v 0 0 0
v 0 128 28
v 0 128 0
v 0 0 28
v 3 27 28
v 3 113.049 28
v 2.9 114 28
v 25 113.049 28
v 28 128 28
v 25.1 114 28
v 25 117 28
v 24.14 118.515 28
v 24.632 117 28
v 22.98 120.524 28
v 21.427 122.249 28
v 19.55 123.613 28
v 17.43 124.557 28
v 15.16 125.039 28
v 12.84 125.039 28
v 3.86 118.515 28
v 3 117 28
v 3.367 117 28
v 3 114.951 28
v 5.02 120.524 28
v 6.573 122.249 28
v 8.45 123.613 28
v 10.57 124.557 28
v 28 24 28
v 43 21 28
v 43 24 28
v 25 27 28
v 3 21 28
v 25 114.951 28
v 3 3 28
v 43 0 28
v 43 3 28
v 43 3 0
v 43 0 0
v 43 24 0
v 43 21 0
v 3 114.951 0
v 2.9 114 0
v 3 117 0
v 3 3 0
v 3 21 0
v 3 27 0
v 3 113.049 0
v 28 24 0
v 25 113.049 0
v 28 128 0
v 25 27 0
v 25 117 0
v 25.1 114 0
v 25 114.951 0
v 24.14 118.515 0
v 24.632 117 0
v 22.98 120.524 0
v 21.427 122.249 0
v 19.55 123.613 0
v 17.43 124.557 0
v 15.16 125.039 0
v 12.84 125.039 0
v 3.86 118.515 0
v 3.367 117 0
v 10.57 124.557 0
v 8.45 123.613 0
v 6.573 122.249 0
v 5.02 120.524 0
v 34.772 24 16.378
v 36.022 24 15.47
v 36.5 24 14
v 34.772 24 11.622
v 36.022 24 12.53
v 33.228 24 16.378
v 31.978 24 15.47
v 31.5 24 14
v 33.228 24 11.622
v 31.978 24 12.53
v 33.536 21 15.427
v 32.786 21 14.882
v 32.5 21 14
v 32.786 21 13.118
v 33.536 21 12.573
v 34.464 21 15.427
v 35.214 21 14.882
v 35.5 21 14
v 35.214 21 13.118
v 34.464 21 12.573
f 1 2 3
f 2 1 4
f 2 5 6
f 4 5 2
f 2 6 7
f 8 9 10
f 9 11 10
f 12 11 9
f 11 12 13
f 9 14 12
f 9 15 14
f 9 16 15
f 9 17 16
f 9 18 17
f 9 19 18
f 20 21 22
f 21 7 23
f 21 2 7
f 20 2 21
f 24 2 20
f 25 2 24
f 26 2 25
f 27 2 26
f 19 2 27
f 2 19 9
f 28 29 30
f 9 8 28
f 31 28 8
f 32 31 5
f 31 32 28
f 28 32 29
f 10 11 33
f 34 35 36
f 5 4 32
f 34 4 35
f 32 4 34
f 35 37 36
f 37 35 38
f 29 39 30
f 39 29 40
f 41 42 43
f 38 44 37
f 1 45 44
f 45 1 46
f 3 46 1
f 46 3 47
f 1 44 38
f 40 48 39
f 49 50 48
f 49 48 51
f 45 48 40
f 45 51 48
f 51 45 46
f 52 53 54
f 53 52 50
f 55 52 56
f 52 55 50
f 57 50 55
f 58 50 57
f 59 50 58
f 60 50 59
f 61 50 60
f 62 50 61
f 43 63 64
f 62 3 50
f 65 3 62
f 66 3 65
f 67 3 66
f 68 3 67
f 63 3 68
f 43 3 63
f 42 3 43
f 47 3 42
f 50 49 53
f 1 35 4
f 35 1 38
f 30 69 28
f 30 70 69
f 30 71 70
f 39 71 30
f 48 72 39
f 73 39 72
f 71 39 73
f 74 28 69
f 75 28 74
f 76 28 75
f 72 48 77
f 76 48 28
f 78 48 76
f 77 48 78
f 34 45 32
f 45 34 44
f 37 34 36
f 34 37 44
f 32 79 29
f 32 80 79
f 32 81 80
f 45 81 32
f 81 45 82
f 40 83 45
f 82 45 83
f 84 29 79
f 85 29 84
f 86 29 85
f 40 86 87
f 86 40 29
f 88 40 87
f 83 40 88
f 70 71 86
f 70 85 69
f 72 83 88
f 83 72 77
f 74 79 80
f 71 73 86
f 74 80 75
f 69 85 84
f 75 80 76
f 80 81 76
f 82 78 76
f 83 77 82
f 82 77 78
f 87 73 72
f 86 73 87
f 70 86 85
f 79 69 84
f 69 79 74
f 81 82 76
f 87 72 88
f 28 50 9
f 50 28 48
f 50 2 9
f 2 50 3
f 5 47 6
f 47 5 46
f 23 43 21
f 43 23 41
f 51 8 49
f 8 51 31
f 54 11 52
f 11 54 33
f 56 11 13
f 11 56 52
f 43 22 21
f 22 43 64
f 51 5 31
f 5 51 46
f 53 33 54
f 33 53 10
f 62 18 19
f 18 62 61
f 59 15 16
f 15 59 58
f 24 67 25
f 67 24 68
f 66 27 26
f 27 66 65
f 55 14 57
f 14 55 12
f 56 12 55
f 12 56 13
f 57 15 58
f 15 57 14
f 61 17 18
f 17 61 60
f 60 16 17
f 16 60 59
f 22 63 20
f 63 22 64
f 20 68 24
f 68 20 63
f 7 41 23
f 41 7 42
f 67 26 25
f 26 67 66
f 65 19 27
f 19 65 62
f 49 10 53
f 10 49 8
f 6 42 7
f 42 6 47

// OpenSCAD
// Configuration

height = 90; // bottom of shelf to rod
width = 28;
thickness = 3;
shelf_thickness = 18;
rod_dia = 22;
clamp_length = 40;
clamp_height = 28;
clearance = 0.2;

module brace() {
    rotate([0, -90, 180]) {
        linear_extrude(height = thickness) {
            polygon(points=[
                [0, thickness * 2],
                [0, height + rod_dia + thickness],
                [clamp_height/2, height + rod_dia + thickness]
            ]);
        }
    }
}

module rod_holder() {
    difference() {
        cube([clamp_length + thickness, shelf_thickness + thickness * 2, clamp_height]);
        translate([thickness, thickness]) cube([clamp_length, shelf_thickness, clamp_height]);
        translate([width + (clamp_length - width)/2, shelf_thickness + thickness * 2, clamp_height / 2]) rotate([90, 0, 0]) cylinder(d1=5, d2=3, h=thickness, $fn=10);
    }

    translate([0, shelf_thickness + thickness * 2]) {
        difference() {
            cube([width, height + rod_dia/2 + thickness, width]);
            translate([thickness, thickness]) cube([width - thickness * 2, height, width]);
            translate([width/2, height]) cylinder(d=rod_dia + clearance, h=width);
        }
        /* translate([0, height + rod_dia + thickness,thickness]) brace(); */
        /* translate([width -thickness, height + rod_dia + thickness, thickness]) brace(); */
    }
}

rod_holder();
/* translate([- 10, 0, 0]) mirror([1, 0, 0]) rod_holder(); */
